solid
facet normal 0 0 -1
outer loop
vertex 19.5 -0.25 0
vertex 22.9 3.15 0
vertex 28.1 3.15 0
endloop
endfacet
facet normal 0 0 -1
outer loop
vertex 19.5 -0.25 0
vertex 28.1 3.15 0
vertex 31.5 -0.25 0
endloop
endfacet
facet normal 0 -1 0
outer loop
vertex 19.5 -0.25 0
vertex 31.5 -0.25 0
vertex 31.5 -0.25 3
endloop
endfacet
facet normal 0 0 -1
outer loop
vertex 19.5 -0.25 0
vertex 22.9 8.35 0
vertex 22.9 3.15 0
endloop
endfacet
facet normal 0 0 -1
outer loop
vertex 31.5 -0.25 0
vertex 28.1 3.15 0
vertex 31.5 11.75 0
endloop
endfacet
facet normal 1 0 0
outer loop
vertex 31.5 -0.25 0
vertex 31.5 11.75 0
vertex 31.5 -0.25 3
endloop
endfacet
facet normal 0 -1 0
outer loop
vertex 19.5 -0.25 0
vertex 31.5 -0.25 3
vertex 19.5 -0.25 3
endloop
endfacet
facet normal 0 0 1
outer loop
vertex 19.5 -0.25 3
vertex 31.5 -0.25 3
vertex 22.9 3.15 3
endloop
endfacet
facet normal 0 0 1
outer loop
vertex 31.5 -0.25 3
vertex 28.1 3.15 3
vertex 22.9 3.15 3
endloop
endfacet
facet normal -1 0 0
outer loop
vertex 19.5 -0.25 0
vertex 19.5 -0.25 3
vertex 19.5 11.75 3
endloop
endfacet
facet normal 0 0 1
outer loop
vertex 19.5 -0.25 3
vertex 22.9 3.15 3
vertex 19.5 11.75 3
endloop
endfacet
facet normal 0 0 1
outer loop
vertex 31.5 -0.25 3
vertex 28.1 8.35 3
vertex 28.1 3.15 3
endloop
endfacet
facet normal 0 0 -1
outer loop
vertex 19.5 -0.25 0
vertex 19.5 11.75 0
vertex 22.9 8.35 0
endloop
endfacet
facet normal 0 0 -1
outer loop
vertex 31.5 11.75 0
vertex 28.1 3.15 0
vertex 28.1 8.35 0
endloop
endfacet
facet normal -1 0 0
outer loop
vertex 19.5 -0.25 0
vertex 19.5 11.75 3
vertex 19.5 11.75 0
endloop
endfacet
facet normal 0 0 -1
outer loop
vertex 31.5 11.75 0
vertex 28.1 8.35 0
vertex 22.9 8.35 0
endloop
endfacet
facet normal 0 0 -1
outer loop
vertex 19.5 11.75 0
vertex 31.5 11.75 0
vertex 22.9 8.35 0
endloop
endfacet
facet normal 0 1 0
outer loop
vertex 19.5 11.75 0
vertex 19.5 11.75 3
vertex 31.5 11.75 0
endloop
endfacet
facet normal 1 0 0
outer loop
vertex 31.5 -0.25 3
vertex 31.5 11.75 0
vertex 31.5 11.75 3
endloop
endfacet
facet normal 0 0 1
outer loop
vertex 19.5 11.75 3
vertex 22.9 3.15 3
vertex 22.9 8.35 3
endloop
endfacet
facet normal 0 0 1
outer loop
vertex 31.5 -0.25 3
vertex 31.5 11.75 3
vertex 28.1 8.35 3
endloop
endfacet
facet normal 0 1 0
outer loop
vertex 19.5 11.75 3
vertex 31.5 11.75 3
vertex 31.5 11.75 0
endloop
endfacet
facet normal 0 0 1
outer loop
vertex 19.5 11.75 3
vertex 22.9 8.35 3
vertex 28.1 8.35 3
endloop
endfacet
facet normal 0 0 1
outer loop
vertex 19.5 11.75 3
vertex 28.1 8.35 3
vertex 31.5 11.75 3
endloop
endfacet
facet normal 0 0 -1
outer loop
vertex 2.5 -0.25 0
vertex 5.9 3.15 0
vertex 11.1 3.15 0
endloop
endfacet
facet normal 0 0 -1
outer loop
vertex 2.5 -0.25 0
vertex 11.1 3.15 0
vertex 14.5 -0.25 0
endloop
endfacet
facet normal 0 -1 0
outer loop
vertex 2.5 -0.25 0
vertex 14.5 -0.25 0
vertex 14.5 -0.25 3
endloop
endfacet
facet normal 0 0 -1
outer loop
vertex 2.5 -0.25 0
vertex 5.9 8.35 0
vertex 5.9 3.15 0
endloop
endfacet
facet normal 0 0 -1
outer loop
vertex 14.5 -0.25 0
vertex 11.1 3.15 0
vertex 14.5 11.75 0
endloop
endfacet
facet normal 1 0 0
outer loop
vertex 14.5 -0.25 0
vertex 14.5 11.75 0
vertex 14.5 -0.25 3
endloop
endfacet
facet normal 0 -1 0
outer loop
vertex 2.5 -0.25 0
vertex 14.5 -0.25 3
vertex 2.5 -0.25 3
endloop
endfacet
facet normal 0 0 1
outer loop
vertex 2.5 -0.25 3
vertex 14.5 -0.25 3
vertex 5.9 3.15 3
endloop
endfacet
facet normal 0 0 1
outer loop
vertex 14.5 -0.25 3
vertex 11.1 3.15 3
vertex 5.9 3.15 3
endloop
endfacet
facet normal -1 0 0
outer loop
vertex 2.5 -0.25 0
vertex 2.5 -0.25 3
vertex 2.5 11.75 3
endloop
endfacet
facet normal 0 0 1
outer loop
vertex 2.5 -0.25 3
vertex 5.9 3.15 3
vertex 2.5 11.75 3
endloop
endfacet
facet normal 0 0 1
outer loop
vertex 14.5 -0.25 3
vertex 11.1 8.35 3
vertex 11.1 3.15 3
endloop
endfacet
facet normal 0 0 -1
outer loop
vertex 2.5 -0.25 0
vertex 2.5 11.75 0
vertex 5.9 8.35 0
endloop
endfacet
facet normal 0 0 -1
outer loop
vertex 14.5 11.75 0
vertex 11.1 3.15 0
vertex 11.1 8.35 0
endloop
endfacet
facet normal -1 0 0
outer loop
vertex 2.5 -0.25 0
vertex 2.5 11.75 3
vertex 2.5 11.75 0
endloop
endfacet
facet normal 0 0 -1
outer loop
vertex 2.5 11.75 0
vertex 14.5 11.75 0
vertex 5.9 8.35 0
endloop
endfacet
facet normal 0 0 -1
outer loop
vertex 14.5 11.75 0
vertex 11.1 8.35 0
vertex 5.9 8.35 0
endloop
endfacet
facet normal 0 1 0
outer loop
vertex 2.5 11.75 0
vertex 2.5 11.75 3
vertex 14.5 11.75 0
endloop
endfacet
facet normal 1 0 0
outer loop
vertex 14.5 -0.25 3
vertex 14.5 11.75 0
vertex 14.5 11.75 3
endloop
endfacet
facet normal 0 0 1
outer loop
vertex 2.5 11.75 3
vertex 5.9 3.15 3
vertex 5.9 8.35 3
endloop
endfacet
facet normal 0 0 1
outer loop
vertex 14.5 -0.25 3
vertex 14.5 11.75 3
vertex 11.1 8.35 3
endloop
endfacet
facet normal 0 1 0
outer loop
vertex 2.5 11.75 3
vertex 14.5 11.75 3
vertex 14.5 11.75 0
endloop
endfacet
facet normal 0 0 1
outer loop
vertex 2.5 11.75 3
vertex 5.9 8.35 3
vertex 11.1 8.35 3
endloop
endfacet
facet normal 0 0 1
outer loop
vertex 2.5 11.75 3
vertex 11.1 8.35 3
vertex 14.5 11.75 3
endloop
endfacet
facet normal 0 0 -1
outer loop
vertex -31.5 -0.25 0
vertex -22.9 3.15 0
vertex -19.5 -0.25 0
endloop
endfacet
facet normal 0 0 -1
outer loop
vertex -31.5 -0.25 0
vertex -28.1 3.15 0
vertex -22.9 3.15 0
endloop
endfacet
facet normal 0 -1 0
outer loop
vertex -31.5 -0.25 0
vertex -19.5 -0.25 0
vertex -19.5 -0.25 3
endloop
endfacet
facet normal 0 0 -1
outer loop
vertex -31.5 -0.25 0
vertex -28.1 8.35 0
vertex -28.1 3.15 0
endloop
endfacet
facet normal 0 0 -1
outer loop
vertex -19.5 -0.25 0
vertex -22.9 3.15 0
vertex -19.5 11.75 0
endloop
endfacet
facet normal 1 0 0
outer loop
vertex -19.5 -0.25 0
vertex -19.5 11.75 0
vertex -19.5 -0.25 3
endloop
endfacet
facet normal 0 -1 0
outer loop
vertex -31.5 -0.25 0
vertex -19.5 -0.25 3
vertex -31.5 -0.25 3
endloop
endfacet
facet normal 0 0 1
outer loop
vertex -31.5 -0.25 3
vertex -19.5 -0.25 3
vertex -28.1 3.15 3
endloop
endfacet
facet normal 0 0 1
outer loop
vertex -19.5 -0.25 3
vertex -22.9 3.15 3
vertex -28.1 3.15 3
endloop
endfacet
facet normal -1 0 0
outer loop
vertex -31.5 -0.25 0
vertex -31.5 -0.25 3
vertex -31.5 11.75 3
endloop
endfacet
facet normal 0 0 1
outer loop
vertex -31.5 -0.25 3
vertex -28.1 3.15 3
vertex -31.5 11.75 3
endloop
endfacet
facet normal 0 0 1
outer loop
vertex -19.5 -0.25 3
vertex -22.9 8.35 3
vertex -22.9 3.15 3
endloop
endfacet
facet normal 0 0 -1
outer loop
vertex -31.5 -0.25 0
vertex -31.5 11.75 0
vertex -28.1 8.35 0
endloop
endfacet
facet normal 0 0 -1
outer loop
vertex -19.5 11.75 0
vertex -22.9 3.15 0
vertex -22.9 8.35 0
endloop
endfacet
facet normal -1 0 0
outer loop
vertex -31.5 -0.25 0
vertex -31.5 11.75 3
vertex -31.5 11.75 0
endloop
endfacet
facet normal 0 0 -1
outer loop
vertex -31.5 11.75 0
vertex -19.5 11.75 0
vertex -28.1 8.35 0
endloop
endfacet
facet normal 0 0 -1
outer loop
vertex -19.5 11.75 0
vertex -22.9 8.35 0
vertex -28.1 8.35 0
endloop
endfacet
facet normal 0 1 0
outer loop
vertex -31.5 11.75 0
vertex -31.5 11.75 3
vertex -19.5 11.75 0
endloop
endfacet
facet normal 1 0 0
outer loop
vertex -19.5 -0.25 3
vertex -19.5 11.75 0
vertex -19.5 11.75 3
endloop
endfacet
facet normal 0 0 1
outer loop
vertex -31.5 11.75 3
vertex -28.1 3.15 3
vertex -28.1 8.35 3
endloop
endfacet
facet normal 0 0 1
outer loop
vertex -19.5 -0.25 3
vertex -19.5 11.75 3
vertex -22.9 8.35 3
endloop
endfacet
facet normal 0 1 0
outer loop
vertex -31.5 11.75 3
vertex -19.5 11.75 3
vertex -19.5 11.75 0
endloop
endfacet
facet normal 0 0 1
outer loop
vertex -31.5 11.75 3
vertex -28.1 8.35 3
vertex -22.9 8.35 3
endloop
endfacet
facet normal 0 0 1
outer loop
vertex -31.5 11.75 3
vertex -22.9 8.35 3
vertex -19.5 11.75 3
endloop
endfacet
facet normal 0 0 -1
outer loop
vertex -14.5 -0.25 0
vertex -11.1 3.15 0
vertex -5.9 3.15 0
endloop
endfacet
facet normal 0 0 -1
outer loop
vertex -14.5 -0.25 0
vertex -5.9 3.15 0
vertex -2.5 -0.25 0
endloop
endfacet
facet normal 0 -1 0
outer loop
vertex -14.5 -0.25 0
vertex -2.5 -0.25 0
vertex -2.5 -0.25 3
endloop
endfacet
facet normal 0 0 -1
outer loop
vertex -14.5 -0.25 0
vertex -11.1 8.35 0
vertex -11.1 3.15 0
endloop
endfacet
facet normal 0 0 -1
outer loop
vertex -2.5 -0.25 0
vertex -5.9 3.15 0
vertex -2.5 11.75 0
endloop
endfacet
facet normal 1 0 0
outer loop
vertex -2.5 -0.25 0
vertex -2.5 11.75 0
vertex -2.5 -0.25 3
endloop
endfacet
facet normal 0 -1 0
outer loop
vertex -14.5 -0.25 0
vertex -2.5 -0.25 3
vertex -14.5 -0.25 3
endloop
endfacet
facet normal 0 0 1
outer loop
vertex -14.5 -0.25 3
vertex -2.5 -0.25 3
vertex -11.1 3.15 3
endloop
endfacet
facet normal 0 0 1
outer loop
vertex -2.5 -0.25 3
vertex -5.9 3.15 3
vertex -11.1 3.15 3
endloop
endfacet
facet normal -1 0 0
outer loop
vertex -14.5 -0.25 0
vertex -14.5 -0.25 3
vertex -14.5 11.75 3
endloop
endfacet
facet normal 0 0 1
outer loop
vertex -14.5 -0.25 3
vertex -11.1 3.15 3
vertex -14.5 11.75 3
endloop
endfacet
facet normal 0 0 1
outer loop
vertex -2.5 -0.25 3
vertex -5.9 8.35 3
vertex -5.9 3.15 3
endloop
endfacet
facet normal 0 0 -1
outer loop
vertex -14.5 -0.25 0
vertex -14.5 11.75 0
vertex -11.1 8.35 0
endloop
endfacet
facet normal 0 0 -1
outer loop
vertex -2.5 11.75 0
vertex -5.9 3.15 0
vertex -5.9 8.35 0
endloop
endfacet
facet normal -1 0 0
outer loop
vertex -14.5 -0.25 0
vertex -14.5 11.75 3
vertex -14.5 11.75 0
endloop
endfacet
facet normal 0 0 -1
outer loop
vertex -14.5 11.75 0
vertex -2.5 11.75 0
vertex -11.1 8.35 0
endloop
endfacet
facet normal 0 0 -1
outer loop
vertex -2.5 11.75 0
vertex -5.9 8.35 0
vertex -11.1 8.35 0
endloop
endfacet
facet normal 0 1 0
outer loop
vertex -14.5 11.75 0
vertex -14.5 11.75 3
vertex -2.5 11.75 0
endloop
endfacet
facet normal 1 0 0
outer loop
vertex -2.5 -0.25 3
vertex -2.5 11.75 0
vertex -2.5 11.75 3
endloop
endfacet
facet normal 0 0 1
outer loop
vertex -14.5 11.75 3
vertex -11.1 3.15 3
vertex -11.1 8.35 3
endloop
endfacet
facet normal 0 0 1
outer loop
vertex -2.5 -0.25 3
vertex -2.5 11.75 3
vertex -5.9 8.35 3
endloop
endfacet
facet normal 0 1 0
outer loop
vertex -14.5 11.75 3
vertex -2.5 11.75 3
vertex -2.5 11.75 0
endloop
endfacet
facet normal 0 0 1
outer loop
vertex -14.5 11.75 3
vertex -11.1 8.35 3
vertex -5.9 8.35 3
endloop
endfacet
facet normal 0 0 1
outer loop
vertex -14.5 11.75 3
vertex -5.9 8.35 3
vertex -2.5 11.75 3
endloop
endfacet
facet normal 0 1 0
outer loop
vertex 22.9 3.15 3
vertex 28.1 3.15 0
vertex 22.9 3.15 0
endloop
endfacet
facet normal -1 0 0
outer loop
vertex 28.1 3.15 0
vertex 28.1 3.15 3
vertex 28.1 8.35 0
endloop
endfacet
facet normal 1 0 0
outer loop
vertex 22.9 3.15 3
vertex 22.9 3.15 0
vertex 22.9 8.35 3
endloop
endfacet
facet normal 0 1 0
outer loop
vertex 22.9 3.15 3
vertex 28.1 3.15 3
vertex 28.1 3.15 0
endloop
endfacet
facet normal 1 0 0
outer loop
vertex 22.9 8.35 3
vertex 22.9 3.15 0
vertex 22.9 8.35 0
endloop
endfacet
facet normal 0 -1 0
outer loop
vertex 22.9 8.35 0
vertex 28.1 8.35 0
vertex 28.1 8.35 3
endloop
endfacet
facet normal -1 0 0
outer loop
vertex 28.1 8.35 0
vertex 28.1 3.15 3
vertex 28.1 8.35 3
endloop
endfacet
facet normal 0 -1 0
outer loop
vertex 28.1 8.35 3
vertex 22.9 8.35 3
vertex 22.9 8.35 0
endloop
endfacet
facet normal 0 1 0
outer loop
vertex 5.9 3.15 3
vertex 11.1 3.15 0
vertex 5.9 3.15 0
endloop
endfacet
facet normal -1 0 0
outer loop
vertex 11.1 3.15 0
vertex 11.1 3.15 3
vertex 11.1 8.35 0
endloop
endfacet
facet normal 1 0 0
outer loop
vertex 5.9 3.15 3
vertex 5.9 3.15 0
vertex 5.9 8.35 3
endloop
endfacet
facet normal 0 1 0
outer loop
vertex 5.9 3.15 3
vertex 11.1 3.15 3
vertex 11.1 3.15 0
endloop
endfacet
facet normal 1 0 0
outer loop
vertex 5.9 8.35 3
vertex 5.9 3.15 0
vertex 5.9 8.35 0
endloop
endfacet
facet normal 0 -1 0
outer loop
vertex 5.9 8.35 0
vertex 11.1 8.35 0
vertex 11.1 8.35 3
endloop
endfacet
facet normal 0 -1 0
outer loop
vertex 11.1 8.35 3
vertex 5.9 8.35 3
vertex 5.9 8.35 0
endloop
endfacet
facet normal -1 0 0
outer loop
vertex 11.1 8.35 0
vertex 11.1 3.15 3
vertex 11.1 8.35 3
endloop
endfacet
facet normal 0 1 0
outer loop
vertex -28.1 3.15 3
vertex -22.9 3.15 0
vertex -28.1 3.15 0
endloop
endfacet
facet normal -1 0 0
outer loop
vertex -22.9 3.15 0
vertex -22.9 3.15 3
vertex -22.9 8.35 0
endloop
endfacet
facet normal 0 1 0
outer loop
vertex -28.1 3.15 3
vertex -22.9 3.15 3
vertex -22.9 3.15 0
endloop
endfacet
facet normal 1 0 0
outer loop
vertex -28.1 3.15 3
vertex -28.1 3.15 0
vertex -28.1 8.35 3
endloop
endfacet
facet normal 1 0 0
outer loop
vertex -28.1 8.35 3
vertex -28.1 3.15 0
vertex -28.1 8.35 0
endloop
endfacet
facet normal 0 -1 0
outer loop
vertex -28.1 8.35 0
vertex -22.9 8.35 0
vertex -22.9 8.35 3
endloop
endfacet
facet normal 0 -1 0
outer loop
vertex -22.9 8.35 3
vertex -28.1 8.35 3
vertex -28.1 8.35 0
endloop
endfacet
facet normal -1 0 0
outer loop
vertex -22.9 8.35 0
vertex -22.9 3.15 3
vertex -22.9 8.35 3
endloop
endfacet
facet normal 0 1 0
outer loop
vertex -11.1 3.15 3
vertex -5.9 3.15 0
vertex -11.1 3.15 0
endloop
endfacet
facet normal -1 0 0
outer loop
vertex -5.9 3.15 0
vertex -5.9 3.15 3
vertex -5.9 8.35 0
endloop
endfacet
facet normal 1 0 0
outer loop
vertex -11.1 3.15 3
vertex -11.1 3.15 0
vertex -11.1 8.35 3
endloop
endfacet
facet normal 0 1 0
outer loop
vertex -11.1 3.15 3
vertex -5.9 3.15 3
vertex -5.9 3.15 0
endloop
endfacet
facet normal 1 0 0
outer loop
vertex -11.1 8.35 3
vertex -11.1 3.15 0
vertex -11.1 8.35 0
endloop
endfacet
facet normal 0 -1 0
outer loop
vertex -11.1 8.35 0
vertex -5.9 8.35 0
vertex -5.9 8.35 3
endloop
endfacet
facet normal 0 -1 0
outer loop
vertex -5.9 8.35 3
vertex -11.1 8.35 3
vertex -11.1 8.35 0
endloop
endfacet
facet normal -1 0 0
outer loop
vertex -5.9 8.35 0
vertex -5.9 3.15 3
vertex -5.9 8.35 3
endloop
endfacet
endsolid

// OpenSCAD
$fn = 50;

difference() {
	union() {
		translate(v = [-25.5, 5.75, 0]) {
			rotate(a = [0, 0, 0]) {
				difference() {
					union() {
						translate(v = [-6.0, -6.0, 0]) {
							cube(size = [12.0, 12.0, 3.0]);
						}
					}
					union() {
						translate(v = [-2.6, -2.6, -0.1]) {
							cube(size = [5.2, 5.2, 3.2]);
						}
					}
				}
			}
		}
		translate(v = [-8.5, 5.75, 0]) {
			rotate(a = [0, 0, 0]) {
				difference() {
					union() {
						translate(v = [-6.0, -6.0, 0]) {
							cube(size = [12.0, 12.0, 3.0]);
						}
					}
					union() {
						translate(v = [-2.6, -2.6, -0.1]) {
							cube(size = [5.2, 5.2, 3.2]);
						}
					}
				}
			}
		}
		translate(v = [8.5, 5.75, 0]) {
			rotate(a = [0, 0, 0]) {
				difference() {
					union() {
						translate(v = [-6.0, -6.0, 0]) {
							cube(size = [12.0, 12.0, 3.0]);
						}
					}
					union() {
						translate(v = [-2.6, -2.6, -0.1]) {
							cube(size = [5.2, 5.2, 3.2]);
						}
					}
				}
			}
		}
		translate(v = [25.5, 5.75, 0]) {
			rotate(a = [0, 0, 0]) {
				difference() {
					union() {
						translate(v = [-6.0, -6.0, 0]) {
							cube(size = [12.0, 12.0, 3.0]);
						}
					}
					union() {
						translate(v = [-2.6, -2.6, -0.1]) {
							cube(size = [5.2, 5.2, 3.2]);
						}
					}
				}
			}
		}
	}
	union();
}
